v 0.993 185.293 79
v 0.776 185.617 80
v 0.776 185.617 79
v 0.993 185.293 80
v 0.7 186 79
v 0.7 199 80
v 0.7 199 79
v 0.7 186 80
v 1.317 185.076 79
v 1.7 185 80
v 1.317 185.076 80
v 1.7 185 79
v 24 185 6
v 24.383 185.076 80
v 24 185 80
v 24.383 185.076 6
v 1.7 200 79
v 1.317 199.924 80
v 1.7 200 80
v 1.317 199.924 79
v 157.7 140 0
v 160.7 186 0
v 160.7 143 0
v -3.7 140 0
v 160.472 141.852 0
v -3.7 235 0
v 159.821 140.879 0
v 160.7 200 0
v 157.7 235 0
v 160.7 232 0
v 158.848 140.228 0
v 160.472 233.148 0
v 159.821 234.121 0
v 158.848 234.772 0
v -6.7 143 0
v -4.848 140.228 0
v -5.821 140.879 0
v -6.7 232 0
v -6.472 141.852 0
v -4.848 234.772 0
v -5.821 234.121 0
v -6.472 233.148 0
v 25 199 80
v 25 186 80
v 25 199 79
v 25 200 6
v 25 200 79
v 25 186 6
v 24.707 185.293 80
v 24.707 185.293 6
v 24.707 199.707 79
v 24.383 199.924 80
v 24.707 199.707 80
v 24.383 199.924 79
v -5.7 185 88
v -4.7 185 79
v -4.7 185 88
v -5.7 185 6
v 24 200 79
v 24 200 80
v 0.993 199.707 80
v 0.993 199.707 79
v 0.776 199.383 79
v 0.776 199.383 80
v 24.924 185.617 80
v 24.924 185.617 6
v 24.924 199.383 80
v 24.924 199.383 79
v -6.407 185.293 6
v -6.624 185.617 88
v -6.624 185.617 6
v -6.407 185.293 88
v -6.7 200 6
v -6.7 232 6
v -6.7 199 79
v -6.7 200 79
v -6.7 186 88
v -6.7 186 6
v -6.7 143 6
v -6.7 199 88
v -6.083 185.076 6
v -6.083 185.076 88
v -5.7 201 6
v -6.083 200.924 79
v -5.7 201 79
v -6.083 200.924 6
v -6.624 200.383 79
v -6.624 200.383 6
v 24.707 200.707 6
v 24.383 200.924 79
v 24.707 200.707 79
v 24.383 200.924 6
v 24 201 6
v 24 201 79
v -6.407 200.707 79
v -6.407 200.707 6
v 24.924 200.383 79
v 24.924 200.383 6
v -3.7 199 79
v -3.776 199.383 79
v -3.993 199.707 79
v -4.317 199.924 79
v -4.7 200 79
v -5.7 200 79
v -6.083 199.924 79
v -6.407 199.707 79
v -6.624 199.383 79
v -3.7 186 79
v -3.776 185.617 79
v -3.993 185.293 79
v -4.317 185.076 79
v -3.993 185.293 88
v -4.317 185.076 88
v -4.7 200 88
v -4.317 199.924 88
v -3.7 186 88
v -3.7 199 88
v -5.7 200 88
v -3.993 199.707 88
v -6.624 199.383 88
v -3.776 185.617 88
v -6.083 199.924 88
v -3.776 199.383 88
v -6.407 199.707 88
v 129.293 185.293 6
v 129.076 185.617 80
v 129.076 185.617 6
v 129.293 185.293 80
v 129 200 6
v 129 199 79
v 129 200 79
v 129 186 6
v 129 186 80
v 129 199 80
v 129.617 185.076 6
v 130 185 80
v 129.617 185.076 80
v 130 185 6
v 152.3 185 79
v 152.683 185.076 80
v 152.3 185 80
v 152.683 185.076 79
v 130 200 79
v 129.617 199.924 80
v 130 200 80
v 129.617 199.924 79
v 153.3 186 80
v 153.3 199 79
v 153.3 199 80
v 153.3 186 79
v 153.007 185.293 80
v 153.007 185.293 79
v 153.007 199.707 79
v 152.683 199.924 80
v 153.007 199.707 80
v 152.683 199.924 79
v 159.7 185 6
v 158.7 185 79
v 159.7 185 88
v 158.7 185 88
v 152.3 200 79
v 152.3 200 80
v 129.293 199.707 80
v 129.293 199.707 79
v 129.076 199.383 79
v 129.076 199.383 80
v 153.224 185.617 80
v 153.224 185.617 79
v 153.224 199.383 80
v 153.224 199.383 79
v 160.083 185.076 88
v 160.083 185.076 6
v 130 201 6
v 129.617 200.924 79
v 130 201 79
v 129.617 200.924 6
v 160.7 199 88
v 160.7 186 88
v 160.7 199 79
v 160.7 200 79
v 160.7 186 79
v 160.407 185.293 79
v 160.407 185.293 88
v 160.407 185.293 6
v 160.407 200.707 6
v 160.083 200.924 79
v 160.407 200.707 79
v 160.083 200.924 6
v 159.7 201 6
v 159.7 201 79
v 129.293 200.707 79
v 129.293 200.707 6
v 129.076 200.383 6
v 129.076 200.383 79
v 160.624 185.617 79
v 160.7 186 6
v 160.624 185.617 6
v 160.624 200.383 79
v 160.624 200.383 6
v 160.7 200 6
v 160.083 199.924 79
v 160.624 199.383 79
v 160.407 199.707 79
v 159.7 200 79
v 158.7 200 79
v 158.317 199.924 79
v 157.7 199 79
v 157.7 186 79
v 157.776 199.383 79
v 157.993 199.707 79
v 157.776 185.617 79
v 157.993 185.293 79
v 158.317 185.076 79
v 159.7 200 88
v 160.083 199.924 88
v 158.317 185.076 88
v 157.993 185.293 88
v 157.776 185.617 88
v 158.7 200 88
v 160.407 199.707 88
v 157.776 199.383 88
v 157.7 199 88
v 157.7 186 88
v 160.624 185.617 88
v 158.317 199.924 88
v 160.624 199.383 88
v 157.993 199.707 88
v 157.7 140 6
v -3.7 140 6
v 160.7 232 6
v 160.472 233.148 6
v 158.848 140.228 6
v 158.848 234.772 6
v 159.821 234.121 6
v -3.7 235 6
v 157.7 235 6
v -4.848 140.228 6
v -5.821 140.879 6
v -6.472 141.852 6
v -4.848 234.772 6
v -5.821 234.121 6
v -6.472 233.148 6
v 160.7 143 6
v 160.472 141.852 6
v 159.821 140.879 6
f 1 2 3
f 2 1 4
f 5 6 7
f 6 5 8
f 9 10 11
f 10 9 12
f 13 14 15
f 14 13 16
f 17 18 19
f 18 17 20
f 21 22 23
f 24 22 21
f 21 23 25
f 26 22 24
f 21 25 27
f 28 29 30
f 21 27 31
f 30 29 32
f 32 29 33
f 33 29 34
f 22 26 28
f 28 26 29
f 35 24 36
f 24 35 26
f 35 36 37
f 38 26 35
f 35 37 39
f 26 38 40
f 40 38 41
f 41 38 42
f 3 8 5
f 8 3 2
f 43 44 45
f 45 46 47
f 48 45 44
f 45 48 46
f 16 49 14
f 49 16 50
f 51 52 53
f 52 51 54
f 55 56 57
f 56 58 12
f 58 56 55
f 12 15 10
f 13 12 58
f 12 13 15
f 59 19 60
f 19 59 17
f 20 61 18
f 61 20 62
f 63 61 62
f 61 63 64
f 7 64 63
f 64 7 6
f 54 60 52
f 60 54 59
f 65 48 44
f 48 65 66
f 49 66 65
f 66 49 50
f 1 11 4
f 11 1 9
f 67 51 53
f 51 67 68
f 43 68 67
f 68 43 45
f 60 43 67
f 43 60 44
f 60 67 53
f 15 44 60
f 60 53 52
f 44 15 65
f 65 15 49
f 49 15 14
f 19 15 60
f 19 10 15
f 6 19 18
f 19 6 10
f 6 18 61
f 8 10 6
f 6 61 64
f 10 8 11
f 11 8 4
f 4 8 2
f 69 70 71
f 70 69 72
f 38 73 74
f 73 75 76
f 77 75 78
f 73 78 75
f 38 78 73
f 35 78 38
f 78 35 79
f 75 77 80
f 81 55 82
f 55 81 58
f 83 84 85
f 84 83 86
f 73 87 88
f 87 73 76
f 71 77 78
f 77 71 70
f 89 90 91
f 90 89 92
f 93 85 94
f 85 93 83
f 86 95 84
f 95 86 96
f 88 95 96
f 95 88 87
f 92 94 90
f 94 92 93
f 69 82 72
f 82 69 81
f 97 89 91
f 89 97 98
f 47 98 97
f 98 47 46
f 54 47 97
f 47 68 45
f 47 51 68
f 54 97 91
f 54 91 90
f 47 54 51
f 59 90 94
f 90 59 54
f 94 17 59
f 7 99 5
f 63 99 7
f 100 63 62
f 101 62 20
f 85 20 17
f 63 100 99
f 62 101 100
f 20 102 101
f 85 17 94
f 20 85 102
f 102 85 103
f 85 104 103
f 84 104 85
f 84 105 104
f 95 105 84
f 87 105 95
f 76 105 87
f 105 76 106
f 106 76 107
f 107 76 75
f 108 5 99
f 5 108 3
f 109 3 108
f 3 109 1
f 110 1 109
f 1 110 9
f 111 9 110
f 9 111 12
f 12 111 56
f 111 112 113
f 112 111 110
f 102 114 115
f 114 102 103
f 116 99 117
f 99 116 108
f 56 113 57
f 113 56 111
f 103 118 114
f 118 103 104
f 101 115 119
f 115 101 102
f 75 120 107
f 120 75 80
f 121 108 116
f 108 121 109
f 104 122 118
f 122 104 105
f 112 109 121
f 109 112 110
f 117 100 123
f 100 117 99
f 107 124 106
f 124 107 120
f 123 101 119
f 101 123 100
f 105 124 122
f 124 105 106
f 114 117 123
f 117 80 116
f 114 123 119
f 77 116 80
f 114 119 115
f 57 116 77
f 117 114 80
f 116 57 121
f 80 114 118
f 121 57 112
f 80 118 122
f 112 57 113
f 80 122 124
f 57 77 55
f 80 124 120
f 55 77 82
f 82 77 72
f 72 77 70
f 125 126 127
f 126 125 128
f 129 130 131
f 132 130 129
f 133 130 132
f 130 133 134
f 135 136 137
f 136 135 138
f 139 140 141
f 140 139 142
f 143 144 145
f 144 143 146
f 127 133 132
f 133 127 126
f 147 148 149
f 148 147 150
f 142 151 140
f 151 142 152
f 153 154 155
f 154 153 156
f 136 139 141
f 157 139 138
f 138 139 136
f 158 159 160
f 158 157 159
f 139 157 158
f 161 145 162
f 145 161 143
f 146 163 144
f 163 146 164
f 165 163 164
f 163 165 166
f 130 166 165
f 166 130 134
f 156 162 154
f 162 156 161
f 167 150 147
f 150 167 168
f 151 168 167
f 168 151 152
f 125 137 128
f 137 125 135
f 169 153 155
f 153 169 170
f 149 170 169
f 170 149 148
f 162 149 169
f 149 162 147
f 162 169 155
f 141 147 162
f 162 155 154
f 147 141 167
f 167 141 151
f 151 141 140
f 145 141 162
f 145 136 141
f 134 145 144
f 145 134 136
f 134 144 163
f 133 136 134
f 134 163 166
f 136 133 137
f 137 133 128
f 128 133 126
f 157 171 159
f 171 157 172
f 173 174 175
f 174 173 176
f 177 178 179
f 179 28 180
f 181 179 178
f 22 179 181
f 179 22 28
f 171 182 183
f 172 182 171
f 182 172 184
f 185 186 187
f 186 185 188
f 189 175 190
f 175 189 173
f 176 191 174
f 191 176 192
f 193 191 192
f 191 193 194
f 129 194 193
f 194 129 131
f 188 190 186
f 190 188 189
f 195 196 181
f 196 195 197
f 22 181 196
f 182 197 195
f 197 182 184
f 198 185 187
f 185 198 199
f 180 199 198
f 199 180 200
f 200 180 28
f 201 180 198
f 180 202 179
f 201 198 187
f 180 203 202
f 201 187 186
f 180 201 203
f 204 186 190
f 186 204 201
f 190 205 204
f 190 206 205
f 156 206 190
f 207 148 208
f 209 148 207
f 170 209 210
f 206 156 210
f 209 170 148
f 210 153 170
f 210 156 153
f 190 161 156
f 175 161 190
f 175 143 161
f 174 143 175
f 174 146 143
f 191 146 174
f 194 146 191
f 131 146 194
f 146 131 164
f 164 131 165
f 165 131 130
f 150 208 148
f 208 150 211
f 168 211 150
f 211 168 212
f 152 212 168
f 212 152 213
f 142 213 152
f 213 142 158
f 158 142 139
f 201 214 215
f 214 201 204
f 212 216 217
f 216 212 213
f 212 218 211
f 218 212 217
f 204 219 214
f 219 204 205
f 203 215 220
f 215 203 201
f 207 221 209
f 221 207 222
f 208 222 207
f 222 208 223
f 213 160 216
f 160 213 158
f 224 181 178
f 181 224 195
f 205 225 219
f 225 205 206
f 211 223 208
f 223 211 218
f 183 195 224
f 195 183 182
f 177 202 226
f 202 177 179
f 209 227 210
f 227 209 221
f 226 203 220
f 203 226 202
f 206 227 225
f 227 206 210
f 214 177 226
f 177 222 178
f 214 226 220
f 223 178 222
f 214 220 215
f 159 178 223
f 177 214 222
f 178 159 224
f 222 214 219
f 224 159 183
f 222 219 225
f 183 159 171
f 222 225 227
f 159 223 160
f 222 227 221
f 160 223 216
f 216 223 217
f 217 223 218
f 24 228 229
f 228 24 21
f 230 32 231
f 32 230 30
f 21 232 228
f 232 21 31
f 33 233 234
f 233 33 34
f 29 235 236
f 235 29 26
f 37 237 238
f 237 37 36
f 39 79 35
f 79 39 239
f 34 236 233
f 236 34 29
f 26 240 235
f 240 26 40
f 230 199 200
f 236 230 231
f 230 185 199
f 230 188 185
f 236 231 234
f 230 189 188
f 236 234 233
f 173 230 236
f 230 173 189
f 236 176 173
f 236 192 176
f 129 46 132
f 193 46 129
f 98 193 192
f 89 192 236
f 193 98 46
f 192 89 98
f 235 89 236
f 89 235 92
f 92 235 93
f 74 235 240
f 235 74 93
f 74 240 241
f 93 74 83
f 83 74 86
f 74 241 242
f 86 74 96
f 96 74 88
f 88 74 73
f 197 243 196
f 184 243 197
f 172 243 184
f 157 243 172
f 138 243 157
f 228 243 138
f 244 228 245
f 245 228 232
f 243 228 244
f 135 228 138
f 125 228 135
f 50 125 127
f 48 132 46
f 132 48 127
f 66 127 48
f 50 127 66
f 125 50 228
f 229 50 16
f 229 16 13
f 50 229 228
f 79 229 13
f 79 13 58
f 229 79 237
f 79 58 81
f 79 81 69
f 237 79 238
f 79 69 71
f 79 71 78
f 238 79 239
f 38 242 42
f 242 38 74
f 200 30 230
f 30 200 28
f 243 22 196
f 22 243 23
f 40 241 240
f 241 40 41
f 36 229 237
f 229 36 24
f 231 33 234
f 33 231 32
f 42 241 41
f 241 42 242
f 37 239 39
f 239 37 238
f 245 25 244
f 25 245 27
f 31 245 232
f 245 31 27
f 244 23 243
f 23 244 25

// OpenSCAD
// AI-CAR の試験台: カバーとバンパーを付けたまま、天板の 4 隅の下面を受けて車輪を床から浮かせる
// 前用と後ろ用の 2 個（同じ形。後ろ用は 180° 回して置く）。1 個に 2 隅の柱と、左右の位置決めの壁
// 座標は天板と同じ（X 左右: 天板の左端 0、Y 前後: 天板の後端 0・+Y が前、Z: 天板の上面 0）
// part = "stand"（印刷用、1 個。2 個印刷する） / "view"（車体と重ねた図）
part = "stand";

use <../battery_lidar_mount/battery_lidar_mount.scad>

// ---- 車体（battery_lidar_mount.scad と同じ値）----
plate_w = 154;
plate_l = 200;
plate_t = 2;
cov_in = 0.3;             // カバーの左右の壁の内側（天板の端から外へ）
cov_side = cov_in + 2.4;  // カバーの左右の壁の外側。壁の下端は天板の下面
cov_hook_y1 = 30 + 6;     // カバーのフック（天板の前後の端から 30 mm、幅 12 mm）の内側の端
bump_face_y = 29.8;       // バンパーの前面の板の裏（天板の端から）。これより手前は天板の下面より下に何もない
wheel_axle = 56;          // 車軸（天板の端から。実測）
wheel_d = 80;             // 車輪の直径（仮定。実測して合わせる）
deck_floor = 70;          // 床から天板の下面まで（実測。車輪が床に着いた状態）

// ---- 試験台 ----
st_h = 80;                // 床から天板の下面（受け面）まで
st_clr = 1;               // 車体とのすき間
pad_x = 25;               // 受け面の左右の幅（天板の端から内側へ）
pad_x0 = st_clr - cov_in;  // 受け面の外側の端（カバーの壁の内側から 1 mm）
pad_y = wheel_axle - wheel_d / 2 - st_clr;  // 受け面の奥行き（天板の端から車輪の手前まで）
wall_t = 3;               // 位置決めの壁の厚さ
wall_up = 6;              // 壁の上端（天板の上面から）。カバーの左右の壁の外側にかぶせる
foot_t = 6;               // 床の板の厚さ
foot_out = 35;            // 床の板を天板の端より外へ出す長さ（バンパーの下。バンパーの下端は床から約 70 mm）
foot_in = 60;             // 床の板を天板の端より内へ入れる長さ（浮いた車輪の下）
edge = 1;

z_floor = -plate_t - st_h;
lift = st_h - deck_floor;  // 車輪が浮く量
x_wall0 = -cov_side - st_clr - wall_t;
x_wall1 = plate_w + cov_side + st_clr + wall_t;
y_in = plate_l - pad_y;   // 受け面の内側の端（前用）
assert(pad_y >= 10, "車輪が大きく、受け面が 10 mm 取れない");
assert(foot_t + st_clr <= lift, "床の板が浮いた車輪に当たる");

module rbox(p0, p1, r = edge) {
    translate([p0[0], p0[1], p0[2]]) hull()
        for (x = [r, p1[0] - p0[0] - r], y = [r, p1[1] - p0[1] - r])
            translate([x, y, 0]) cylinder(r = r, h = p1[2] - p0[2], $fn = 16);
}

// 前用（天板の前端 Y = plate_l 側）。後ろ用は同じものを 180° 回す
module stand() {
    y_out = plate_l + foot_out;
    union() {
        // 床の板
        rbox([x_wall0, plate_l - foot_in, z_floor], [x_wall1, y_out, z_floor + foot_t], 3);
        for (s = [0, 1]) {
            x0 = s ? plate_w - pad_x : x_wall0;
            x1 = s ? x_wall1 : pad_x;
            // 柱（上面が受け面。天板の外はカバーの壁の下端とバンパーから 1 mm 下げる）
            rbox([s ? plate_w - pad_x : pad_x0, y_in, z_floor], [s ? plate_w - pad_x0 : pad_x, plate_l, -plate_t]);
            rbox([x0, y_in, z_floor], [x1, plate_l + 1, -plate_t - st_clr]);
            // 位置決めの壁（カバーの左右の壁の外側に 1 mm あけてかぶせる）
            wx = s ? plate_w + cov_side + st_clr : x_wall0;
            rbox([wx, y_in, z_floor], [wx + wall_t, plate_l, wall_up]);
        }
    }
}

module car() {
    plate();
    color("royalblue") box();
    color("orange") translate([0, 0, 38.4]) lid();
    color("seagreen") pi_base();
    color("dimgray") both_bumpers();
    color("#3c4452", 0.5) cover();
}

module wheels_ghost() {
    for (y = [wheel_axle, plate_l - wheel_axle], s = [0, 1])
        color("#222", 0.7) translate([s ? plate_w + cov_side + 22 : -cov_side - 22, y, -plate_t - deck_floor + wheel_d / 2])
            rotate([0, 90, 0]) cylinder(d = wheel_d, h = 36, center = true);
}

module both_stands() {
    stand();
    translate([plate_w, plate_l, 0]) rotate([0, 0, 180]) stand();
}

if (part == "stand") translate([0, 0, -z_floor]) stand();
if (part == "view") {
    translate([0, 0, lift]) { car(); wheels_ghost(); }
    color("#d98c3a") translate([0, 0, lift]) both_stands();
}
if (part == "view_raised") { car(); wheels_ghost(); color("#d98c3a") both_stands(); }

echo(pad = [pad_x, pad_y], lift = lift, stand_size = [x_wall1 - x_wall0, foot_in + foot_out, st_h + plate_t + wall_up]);
